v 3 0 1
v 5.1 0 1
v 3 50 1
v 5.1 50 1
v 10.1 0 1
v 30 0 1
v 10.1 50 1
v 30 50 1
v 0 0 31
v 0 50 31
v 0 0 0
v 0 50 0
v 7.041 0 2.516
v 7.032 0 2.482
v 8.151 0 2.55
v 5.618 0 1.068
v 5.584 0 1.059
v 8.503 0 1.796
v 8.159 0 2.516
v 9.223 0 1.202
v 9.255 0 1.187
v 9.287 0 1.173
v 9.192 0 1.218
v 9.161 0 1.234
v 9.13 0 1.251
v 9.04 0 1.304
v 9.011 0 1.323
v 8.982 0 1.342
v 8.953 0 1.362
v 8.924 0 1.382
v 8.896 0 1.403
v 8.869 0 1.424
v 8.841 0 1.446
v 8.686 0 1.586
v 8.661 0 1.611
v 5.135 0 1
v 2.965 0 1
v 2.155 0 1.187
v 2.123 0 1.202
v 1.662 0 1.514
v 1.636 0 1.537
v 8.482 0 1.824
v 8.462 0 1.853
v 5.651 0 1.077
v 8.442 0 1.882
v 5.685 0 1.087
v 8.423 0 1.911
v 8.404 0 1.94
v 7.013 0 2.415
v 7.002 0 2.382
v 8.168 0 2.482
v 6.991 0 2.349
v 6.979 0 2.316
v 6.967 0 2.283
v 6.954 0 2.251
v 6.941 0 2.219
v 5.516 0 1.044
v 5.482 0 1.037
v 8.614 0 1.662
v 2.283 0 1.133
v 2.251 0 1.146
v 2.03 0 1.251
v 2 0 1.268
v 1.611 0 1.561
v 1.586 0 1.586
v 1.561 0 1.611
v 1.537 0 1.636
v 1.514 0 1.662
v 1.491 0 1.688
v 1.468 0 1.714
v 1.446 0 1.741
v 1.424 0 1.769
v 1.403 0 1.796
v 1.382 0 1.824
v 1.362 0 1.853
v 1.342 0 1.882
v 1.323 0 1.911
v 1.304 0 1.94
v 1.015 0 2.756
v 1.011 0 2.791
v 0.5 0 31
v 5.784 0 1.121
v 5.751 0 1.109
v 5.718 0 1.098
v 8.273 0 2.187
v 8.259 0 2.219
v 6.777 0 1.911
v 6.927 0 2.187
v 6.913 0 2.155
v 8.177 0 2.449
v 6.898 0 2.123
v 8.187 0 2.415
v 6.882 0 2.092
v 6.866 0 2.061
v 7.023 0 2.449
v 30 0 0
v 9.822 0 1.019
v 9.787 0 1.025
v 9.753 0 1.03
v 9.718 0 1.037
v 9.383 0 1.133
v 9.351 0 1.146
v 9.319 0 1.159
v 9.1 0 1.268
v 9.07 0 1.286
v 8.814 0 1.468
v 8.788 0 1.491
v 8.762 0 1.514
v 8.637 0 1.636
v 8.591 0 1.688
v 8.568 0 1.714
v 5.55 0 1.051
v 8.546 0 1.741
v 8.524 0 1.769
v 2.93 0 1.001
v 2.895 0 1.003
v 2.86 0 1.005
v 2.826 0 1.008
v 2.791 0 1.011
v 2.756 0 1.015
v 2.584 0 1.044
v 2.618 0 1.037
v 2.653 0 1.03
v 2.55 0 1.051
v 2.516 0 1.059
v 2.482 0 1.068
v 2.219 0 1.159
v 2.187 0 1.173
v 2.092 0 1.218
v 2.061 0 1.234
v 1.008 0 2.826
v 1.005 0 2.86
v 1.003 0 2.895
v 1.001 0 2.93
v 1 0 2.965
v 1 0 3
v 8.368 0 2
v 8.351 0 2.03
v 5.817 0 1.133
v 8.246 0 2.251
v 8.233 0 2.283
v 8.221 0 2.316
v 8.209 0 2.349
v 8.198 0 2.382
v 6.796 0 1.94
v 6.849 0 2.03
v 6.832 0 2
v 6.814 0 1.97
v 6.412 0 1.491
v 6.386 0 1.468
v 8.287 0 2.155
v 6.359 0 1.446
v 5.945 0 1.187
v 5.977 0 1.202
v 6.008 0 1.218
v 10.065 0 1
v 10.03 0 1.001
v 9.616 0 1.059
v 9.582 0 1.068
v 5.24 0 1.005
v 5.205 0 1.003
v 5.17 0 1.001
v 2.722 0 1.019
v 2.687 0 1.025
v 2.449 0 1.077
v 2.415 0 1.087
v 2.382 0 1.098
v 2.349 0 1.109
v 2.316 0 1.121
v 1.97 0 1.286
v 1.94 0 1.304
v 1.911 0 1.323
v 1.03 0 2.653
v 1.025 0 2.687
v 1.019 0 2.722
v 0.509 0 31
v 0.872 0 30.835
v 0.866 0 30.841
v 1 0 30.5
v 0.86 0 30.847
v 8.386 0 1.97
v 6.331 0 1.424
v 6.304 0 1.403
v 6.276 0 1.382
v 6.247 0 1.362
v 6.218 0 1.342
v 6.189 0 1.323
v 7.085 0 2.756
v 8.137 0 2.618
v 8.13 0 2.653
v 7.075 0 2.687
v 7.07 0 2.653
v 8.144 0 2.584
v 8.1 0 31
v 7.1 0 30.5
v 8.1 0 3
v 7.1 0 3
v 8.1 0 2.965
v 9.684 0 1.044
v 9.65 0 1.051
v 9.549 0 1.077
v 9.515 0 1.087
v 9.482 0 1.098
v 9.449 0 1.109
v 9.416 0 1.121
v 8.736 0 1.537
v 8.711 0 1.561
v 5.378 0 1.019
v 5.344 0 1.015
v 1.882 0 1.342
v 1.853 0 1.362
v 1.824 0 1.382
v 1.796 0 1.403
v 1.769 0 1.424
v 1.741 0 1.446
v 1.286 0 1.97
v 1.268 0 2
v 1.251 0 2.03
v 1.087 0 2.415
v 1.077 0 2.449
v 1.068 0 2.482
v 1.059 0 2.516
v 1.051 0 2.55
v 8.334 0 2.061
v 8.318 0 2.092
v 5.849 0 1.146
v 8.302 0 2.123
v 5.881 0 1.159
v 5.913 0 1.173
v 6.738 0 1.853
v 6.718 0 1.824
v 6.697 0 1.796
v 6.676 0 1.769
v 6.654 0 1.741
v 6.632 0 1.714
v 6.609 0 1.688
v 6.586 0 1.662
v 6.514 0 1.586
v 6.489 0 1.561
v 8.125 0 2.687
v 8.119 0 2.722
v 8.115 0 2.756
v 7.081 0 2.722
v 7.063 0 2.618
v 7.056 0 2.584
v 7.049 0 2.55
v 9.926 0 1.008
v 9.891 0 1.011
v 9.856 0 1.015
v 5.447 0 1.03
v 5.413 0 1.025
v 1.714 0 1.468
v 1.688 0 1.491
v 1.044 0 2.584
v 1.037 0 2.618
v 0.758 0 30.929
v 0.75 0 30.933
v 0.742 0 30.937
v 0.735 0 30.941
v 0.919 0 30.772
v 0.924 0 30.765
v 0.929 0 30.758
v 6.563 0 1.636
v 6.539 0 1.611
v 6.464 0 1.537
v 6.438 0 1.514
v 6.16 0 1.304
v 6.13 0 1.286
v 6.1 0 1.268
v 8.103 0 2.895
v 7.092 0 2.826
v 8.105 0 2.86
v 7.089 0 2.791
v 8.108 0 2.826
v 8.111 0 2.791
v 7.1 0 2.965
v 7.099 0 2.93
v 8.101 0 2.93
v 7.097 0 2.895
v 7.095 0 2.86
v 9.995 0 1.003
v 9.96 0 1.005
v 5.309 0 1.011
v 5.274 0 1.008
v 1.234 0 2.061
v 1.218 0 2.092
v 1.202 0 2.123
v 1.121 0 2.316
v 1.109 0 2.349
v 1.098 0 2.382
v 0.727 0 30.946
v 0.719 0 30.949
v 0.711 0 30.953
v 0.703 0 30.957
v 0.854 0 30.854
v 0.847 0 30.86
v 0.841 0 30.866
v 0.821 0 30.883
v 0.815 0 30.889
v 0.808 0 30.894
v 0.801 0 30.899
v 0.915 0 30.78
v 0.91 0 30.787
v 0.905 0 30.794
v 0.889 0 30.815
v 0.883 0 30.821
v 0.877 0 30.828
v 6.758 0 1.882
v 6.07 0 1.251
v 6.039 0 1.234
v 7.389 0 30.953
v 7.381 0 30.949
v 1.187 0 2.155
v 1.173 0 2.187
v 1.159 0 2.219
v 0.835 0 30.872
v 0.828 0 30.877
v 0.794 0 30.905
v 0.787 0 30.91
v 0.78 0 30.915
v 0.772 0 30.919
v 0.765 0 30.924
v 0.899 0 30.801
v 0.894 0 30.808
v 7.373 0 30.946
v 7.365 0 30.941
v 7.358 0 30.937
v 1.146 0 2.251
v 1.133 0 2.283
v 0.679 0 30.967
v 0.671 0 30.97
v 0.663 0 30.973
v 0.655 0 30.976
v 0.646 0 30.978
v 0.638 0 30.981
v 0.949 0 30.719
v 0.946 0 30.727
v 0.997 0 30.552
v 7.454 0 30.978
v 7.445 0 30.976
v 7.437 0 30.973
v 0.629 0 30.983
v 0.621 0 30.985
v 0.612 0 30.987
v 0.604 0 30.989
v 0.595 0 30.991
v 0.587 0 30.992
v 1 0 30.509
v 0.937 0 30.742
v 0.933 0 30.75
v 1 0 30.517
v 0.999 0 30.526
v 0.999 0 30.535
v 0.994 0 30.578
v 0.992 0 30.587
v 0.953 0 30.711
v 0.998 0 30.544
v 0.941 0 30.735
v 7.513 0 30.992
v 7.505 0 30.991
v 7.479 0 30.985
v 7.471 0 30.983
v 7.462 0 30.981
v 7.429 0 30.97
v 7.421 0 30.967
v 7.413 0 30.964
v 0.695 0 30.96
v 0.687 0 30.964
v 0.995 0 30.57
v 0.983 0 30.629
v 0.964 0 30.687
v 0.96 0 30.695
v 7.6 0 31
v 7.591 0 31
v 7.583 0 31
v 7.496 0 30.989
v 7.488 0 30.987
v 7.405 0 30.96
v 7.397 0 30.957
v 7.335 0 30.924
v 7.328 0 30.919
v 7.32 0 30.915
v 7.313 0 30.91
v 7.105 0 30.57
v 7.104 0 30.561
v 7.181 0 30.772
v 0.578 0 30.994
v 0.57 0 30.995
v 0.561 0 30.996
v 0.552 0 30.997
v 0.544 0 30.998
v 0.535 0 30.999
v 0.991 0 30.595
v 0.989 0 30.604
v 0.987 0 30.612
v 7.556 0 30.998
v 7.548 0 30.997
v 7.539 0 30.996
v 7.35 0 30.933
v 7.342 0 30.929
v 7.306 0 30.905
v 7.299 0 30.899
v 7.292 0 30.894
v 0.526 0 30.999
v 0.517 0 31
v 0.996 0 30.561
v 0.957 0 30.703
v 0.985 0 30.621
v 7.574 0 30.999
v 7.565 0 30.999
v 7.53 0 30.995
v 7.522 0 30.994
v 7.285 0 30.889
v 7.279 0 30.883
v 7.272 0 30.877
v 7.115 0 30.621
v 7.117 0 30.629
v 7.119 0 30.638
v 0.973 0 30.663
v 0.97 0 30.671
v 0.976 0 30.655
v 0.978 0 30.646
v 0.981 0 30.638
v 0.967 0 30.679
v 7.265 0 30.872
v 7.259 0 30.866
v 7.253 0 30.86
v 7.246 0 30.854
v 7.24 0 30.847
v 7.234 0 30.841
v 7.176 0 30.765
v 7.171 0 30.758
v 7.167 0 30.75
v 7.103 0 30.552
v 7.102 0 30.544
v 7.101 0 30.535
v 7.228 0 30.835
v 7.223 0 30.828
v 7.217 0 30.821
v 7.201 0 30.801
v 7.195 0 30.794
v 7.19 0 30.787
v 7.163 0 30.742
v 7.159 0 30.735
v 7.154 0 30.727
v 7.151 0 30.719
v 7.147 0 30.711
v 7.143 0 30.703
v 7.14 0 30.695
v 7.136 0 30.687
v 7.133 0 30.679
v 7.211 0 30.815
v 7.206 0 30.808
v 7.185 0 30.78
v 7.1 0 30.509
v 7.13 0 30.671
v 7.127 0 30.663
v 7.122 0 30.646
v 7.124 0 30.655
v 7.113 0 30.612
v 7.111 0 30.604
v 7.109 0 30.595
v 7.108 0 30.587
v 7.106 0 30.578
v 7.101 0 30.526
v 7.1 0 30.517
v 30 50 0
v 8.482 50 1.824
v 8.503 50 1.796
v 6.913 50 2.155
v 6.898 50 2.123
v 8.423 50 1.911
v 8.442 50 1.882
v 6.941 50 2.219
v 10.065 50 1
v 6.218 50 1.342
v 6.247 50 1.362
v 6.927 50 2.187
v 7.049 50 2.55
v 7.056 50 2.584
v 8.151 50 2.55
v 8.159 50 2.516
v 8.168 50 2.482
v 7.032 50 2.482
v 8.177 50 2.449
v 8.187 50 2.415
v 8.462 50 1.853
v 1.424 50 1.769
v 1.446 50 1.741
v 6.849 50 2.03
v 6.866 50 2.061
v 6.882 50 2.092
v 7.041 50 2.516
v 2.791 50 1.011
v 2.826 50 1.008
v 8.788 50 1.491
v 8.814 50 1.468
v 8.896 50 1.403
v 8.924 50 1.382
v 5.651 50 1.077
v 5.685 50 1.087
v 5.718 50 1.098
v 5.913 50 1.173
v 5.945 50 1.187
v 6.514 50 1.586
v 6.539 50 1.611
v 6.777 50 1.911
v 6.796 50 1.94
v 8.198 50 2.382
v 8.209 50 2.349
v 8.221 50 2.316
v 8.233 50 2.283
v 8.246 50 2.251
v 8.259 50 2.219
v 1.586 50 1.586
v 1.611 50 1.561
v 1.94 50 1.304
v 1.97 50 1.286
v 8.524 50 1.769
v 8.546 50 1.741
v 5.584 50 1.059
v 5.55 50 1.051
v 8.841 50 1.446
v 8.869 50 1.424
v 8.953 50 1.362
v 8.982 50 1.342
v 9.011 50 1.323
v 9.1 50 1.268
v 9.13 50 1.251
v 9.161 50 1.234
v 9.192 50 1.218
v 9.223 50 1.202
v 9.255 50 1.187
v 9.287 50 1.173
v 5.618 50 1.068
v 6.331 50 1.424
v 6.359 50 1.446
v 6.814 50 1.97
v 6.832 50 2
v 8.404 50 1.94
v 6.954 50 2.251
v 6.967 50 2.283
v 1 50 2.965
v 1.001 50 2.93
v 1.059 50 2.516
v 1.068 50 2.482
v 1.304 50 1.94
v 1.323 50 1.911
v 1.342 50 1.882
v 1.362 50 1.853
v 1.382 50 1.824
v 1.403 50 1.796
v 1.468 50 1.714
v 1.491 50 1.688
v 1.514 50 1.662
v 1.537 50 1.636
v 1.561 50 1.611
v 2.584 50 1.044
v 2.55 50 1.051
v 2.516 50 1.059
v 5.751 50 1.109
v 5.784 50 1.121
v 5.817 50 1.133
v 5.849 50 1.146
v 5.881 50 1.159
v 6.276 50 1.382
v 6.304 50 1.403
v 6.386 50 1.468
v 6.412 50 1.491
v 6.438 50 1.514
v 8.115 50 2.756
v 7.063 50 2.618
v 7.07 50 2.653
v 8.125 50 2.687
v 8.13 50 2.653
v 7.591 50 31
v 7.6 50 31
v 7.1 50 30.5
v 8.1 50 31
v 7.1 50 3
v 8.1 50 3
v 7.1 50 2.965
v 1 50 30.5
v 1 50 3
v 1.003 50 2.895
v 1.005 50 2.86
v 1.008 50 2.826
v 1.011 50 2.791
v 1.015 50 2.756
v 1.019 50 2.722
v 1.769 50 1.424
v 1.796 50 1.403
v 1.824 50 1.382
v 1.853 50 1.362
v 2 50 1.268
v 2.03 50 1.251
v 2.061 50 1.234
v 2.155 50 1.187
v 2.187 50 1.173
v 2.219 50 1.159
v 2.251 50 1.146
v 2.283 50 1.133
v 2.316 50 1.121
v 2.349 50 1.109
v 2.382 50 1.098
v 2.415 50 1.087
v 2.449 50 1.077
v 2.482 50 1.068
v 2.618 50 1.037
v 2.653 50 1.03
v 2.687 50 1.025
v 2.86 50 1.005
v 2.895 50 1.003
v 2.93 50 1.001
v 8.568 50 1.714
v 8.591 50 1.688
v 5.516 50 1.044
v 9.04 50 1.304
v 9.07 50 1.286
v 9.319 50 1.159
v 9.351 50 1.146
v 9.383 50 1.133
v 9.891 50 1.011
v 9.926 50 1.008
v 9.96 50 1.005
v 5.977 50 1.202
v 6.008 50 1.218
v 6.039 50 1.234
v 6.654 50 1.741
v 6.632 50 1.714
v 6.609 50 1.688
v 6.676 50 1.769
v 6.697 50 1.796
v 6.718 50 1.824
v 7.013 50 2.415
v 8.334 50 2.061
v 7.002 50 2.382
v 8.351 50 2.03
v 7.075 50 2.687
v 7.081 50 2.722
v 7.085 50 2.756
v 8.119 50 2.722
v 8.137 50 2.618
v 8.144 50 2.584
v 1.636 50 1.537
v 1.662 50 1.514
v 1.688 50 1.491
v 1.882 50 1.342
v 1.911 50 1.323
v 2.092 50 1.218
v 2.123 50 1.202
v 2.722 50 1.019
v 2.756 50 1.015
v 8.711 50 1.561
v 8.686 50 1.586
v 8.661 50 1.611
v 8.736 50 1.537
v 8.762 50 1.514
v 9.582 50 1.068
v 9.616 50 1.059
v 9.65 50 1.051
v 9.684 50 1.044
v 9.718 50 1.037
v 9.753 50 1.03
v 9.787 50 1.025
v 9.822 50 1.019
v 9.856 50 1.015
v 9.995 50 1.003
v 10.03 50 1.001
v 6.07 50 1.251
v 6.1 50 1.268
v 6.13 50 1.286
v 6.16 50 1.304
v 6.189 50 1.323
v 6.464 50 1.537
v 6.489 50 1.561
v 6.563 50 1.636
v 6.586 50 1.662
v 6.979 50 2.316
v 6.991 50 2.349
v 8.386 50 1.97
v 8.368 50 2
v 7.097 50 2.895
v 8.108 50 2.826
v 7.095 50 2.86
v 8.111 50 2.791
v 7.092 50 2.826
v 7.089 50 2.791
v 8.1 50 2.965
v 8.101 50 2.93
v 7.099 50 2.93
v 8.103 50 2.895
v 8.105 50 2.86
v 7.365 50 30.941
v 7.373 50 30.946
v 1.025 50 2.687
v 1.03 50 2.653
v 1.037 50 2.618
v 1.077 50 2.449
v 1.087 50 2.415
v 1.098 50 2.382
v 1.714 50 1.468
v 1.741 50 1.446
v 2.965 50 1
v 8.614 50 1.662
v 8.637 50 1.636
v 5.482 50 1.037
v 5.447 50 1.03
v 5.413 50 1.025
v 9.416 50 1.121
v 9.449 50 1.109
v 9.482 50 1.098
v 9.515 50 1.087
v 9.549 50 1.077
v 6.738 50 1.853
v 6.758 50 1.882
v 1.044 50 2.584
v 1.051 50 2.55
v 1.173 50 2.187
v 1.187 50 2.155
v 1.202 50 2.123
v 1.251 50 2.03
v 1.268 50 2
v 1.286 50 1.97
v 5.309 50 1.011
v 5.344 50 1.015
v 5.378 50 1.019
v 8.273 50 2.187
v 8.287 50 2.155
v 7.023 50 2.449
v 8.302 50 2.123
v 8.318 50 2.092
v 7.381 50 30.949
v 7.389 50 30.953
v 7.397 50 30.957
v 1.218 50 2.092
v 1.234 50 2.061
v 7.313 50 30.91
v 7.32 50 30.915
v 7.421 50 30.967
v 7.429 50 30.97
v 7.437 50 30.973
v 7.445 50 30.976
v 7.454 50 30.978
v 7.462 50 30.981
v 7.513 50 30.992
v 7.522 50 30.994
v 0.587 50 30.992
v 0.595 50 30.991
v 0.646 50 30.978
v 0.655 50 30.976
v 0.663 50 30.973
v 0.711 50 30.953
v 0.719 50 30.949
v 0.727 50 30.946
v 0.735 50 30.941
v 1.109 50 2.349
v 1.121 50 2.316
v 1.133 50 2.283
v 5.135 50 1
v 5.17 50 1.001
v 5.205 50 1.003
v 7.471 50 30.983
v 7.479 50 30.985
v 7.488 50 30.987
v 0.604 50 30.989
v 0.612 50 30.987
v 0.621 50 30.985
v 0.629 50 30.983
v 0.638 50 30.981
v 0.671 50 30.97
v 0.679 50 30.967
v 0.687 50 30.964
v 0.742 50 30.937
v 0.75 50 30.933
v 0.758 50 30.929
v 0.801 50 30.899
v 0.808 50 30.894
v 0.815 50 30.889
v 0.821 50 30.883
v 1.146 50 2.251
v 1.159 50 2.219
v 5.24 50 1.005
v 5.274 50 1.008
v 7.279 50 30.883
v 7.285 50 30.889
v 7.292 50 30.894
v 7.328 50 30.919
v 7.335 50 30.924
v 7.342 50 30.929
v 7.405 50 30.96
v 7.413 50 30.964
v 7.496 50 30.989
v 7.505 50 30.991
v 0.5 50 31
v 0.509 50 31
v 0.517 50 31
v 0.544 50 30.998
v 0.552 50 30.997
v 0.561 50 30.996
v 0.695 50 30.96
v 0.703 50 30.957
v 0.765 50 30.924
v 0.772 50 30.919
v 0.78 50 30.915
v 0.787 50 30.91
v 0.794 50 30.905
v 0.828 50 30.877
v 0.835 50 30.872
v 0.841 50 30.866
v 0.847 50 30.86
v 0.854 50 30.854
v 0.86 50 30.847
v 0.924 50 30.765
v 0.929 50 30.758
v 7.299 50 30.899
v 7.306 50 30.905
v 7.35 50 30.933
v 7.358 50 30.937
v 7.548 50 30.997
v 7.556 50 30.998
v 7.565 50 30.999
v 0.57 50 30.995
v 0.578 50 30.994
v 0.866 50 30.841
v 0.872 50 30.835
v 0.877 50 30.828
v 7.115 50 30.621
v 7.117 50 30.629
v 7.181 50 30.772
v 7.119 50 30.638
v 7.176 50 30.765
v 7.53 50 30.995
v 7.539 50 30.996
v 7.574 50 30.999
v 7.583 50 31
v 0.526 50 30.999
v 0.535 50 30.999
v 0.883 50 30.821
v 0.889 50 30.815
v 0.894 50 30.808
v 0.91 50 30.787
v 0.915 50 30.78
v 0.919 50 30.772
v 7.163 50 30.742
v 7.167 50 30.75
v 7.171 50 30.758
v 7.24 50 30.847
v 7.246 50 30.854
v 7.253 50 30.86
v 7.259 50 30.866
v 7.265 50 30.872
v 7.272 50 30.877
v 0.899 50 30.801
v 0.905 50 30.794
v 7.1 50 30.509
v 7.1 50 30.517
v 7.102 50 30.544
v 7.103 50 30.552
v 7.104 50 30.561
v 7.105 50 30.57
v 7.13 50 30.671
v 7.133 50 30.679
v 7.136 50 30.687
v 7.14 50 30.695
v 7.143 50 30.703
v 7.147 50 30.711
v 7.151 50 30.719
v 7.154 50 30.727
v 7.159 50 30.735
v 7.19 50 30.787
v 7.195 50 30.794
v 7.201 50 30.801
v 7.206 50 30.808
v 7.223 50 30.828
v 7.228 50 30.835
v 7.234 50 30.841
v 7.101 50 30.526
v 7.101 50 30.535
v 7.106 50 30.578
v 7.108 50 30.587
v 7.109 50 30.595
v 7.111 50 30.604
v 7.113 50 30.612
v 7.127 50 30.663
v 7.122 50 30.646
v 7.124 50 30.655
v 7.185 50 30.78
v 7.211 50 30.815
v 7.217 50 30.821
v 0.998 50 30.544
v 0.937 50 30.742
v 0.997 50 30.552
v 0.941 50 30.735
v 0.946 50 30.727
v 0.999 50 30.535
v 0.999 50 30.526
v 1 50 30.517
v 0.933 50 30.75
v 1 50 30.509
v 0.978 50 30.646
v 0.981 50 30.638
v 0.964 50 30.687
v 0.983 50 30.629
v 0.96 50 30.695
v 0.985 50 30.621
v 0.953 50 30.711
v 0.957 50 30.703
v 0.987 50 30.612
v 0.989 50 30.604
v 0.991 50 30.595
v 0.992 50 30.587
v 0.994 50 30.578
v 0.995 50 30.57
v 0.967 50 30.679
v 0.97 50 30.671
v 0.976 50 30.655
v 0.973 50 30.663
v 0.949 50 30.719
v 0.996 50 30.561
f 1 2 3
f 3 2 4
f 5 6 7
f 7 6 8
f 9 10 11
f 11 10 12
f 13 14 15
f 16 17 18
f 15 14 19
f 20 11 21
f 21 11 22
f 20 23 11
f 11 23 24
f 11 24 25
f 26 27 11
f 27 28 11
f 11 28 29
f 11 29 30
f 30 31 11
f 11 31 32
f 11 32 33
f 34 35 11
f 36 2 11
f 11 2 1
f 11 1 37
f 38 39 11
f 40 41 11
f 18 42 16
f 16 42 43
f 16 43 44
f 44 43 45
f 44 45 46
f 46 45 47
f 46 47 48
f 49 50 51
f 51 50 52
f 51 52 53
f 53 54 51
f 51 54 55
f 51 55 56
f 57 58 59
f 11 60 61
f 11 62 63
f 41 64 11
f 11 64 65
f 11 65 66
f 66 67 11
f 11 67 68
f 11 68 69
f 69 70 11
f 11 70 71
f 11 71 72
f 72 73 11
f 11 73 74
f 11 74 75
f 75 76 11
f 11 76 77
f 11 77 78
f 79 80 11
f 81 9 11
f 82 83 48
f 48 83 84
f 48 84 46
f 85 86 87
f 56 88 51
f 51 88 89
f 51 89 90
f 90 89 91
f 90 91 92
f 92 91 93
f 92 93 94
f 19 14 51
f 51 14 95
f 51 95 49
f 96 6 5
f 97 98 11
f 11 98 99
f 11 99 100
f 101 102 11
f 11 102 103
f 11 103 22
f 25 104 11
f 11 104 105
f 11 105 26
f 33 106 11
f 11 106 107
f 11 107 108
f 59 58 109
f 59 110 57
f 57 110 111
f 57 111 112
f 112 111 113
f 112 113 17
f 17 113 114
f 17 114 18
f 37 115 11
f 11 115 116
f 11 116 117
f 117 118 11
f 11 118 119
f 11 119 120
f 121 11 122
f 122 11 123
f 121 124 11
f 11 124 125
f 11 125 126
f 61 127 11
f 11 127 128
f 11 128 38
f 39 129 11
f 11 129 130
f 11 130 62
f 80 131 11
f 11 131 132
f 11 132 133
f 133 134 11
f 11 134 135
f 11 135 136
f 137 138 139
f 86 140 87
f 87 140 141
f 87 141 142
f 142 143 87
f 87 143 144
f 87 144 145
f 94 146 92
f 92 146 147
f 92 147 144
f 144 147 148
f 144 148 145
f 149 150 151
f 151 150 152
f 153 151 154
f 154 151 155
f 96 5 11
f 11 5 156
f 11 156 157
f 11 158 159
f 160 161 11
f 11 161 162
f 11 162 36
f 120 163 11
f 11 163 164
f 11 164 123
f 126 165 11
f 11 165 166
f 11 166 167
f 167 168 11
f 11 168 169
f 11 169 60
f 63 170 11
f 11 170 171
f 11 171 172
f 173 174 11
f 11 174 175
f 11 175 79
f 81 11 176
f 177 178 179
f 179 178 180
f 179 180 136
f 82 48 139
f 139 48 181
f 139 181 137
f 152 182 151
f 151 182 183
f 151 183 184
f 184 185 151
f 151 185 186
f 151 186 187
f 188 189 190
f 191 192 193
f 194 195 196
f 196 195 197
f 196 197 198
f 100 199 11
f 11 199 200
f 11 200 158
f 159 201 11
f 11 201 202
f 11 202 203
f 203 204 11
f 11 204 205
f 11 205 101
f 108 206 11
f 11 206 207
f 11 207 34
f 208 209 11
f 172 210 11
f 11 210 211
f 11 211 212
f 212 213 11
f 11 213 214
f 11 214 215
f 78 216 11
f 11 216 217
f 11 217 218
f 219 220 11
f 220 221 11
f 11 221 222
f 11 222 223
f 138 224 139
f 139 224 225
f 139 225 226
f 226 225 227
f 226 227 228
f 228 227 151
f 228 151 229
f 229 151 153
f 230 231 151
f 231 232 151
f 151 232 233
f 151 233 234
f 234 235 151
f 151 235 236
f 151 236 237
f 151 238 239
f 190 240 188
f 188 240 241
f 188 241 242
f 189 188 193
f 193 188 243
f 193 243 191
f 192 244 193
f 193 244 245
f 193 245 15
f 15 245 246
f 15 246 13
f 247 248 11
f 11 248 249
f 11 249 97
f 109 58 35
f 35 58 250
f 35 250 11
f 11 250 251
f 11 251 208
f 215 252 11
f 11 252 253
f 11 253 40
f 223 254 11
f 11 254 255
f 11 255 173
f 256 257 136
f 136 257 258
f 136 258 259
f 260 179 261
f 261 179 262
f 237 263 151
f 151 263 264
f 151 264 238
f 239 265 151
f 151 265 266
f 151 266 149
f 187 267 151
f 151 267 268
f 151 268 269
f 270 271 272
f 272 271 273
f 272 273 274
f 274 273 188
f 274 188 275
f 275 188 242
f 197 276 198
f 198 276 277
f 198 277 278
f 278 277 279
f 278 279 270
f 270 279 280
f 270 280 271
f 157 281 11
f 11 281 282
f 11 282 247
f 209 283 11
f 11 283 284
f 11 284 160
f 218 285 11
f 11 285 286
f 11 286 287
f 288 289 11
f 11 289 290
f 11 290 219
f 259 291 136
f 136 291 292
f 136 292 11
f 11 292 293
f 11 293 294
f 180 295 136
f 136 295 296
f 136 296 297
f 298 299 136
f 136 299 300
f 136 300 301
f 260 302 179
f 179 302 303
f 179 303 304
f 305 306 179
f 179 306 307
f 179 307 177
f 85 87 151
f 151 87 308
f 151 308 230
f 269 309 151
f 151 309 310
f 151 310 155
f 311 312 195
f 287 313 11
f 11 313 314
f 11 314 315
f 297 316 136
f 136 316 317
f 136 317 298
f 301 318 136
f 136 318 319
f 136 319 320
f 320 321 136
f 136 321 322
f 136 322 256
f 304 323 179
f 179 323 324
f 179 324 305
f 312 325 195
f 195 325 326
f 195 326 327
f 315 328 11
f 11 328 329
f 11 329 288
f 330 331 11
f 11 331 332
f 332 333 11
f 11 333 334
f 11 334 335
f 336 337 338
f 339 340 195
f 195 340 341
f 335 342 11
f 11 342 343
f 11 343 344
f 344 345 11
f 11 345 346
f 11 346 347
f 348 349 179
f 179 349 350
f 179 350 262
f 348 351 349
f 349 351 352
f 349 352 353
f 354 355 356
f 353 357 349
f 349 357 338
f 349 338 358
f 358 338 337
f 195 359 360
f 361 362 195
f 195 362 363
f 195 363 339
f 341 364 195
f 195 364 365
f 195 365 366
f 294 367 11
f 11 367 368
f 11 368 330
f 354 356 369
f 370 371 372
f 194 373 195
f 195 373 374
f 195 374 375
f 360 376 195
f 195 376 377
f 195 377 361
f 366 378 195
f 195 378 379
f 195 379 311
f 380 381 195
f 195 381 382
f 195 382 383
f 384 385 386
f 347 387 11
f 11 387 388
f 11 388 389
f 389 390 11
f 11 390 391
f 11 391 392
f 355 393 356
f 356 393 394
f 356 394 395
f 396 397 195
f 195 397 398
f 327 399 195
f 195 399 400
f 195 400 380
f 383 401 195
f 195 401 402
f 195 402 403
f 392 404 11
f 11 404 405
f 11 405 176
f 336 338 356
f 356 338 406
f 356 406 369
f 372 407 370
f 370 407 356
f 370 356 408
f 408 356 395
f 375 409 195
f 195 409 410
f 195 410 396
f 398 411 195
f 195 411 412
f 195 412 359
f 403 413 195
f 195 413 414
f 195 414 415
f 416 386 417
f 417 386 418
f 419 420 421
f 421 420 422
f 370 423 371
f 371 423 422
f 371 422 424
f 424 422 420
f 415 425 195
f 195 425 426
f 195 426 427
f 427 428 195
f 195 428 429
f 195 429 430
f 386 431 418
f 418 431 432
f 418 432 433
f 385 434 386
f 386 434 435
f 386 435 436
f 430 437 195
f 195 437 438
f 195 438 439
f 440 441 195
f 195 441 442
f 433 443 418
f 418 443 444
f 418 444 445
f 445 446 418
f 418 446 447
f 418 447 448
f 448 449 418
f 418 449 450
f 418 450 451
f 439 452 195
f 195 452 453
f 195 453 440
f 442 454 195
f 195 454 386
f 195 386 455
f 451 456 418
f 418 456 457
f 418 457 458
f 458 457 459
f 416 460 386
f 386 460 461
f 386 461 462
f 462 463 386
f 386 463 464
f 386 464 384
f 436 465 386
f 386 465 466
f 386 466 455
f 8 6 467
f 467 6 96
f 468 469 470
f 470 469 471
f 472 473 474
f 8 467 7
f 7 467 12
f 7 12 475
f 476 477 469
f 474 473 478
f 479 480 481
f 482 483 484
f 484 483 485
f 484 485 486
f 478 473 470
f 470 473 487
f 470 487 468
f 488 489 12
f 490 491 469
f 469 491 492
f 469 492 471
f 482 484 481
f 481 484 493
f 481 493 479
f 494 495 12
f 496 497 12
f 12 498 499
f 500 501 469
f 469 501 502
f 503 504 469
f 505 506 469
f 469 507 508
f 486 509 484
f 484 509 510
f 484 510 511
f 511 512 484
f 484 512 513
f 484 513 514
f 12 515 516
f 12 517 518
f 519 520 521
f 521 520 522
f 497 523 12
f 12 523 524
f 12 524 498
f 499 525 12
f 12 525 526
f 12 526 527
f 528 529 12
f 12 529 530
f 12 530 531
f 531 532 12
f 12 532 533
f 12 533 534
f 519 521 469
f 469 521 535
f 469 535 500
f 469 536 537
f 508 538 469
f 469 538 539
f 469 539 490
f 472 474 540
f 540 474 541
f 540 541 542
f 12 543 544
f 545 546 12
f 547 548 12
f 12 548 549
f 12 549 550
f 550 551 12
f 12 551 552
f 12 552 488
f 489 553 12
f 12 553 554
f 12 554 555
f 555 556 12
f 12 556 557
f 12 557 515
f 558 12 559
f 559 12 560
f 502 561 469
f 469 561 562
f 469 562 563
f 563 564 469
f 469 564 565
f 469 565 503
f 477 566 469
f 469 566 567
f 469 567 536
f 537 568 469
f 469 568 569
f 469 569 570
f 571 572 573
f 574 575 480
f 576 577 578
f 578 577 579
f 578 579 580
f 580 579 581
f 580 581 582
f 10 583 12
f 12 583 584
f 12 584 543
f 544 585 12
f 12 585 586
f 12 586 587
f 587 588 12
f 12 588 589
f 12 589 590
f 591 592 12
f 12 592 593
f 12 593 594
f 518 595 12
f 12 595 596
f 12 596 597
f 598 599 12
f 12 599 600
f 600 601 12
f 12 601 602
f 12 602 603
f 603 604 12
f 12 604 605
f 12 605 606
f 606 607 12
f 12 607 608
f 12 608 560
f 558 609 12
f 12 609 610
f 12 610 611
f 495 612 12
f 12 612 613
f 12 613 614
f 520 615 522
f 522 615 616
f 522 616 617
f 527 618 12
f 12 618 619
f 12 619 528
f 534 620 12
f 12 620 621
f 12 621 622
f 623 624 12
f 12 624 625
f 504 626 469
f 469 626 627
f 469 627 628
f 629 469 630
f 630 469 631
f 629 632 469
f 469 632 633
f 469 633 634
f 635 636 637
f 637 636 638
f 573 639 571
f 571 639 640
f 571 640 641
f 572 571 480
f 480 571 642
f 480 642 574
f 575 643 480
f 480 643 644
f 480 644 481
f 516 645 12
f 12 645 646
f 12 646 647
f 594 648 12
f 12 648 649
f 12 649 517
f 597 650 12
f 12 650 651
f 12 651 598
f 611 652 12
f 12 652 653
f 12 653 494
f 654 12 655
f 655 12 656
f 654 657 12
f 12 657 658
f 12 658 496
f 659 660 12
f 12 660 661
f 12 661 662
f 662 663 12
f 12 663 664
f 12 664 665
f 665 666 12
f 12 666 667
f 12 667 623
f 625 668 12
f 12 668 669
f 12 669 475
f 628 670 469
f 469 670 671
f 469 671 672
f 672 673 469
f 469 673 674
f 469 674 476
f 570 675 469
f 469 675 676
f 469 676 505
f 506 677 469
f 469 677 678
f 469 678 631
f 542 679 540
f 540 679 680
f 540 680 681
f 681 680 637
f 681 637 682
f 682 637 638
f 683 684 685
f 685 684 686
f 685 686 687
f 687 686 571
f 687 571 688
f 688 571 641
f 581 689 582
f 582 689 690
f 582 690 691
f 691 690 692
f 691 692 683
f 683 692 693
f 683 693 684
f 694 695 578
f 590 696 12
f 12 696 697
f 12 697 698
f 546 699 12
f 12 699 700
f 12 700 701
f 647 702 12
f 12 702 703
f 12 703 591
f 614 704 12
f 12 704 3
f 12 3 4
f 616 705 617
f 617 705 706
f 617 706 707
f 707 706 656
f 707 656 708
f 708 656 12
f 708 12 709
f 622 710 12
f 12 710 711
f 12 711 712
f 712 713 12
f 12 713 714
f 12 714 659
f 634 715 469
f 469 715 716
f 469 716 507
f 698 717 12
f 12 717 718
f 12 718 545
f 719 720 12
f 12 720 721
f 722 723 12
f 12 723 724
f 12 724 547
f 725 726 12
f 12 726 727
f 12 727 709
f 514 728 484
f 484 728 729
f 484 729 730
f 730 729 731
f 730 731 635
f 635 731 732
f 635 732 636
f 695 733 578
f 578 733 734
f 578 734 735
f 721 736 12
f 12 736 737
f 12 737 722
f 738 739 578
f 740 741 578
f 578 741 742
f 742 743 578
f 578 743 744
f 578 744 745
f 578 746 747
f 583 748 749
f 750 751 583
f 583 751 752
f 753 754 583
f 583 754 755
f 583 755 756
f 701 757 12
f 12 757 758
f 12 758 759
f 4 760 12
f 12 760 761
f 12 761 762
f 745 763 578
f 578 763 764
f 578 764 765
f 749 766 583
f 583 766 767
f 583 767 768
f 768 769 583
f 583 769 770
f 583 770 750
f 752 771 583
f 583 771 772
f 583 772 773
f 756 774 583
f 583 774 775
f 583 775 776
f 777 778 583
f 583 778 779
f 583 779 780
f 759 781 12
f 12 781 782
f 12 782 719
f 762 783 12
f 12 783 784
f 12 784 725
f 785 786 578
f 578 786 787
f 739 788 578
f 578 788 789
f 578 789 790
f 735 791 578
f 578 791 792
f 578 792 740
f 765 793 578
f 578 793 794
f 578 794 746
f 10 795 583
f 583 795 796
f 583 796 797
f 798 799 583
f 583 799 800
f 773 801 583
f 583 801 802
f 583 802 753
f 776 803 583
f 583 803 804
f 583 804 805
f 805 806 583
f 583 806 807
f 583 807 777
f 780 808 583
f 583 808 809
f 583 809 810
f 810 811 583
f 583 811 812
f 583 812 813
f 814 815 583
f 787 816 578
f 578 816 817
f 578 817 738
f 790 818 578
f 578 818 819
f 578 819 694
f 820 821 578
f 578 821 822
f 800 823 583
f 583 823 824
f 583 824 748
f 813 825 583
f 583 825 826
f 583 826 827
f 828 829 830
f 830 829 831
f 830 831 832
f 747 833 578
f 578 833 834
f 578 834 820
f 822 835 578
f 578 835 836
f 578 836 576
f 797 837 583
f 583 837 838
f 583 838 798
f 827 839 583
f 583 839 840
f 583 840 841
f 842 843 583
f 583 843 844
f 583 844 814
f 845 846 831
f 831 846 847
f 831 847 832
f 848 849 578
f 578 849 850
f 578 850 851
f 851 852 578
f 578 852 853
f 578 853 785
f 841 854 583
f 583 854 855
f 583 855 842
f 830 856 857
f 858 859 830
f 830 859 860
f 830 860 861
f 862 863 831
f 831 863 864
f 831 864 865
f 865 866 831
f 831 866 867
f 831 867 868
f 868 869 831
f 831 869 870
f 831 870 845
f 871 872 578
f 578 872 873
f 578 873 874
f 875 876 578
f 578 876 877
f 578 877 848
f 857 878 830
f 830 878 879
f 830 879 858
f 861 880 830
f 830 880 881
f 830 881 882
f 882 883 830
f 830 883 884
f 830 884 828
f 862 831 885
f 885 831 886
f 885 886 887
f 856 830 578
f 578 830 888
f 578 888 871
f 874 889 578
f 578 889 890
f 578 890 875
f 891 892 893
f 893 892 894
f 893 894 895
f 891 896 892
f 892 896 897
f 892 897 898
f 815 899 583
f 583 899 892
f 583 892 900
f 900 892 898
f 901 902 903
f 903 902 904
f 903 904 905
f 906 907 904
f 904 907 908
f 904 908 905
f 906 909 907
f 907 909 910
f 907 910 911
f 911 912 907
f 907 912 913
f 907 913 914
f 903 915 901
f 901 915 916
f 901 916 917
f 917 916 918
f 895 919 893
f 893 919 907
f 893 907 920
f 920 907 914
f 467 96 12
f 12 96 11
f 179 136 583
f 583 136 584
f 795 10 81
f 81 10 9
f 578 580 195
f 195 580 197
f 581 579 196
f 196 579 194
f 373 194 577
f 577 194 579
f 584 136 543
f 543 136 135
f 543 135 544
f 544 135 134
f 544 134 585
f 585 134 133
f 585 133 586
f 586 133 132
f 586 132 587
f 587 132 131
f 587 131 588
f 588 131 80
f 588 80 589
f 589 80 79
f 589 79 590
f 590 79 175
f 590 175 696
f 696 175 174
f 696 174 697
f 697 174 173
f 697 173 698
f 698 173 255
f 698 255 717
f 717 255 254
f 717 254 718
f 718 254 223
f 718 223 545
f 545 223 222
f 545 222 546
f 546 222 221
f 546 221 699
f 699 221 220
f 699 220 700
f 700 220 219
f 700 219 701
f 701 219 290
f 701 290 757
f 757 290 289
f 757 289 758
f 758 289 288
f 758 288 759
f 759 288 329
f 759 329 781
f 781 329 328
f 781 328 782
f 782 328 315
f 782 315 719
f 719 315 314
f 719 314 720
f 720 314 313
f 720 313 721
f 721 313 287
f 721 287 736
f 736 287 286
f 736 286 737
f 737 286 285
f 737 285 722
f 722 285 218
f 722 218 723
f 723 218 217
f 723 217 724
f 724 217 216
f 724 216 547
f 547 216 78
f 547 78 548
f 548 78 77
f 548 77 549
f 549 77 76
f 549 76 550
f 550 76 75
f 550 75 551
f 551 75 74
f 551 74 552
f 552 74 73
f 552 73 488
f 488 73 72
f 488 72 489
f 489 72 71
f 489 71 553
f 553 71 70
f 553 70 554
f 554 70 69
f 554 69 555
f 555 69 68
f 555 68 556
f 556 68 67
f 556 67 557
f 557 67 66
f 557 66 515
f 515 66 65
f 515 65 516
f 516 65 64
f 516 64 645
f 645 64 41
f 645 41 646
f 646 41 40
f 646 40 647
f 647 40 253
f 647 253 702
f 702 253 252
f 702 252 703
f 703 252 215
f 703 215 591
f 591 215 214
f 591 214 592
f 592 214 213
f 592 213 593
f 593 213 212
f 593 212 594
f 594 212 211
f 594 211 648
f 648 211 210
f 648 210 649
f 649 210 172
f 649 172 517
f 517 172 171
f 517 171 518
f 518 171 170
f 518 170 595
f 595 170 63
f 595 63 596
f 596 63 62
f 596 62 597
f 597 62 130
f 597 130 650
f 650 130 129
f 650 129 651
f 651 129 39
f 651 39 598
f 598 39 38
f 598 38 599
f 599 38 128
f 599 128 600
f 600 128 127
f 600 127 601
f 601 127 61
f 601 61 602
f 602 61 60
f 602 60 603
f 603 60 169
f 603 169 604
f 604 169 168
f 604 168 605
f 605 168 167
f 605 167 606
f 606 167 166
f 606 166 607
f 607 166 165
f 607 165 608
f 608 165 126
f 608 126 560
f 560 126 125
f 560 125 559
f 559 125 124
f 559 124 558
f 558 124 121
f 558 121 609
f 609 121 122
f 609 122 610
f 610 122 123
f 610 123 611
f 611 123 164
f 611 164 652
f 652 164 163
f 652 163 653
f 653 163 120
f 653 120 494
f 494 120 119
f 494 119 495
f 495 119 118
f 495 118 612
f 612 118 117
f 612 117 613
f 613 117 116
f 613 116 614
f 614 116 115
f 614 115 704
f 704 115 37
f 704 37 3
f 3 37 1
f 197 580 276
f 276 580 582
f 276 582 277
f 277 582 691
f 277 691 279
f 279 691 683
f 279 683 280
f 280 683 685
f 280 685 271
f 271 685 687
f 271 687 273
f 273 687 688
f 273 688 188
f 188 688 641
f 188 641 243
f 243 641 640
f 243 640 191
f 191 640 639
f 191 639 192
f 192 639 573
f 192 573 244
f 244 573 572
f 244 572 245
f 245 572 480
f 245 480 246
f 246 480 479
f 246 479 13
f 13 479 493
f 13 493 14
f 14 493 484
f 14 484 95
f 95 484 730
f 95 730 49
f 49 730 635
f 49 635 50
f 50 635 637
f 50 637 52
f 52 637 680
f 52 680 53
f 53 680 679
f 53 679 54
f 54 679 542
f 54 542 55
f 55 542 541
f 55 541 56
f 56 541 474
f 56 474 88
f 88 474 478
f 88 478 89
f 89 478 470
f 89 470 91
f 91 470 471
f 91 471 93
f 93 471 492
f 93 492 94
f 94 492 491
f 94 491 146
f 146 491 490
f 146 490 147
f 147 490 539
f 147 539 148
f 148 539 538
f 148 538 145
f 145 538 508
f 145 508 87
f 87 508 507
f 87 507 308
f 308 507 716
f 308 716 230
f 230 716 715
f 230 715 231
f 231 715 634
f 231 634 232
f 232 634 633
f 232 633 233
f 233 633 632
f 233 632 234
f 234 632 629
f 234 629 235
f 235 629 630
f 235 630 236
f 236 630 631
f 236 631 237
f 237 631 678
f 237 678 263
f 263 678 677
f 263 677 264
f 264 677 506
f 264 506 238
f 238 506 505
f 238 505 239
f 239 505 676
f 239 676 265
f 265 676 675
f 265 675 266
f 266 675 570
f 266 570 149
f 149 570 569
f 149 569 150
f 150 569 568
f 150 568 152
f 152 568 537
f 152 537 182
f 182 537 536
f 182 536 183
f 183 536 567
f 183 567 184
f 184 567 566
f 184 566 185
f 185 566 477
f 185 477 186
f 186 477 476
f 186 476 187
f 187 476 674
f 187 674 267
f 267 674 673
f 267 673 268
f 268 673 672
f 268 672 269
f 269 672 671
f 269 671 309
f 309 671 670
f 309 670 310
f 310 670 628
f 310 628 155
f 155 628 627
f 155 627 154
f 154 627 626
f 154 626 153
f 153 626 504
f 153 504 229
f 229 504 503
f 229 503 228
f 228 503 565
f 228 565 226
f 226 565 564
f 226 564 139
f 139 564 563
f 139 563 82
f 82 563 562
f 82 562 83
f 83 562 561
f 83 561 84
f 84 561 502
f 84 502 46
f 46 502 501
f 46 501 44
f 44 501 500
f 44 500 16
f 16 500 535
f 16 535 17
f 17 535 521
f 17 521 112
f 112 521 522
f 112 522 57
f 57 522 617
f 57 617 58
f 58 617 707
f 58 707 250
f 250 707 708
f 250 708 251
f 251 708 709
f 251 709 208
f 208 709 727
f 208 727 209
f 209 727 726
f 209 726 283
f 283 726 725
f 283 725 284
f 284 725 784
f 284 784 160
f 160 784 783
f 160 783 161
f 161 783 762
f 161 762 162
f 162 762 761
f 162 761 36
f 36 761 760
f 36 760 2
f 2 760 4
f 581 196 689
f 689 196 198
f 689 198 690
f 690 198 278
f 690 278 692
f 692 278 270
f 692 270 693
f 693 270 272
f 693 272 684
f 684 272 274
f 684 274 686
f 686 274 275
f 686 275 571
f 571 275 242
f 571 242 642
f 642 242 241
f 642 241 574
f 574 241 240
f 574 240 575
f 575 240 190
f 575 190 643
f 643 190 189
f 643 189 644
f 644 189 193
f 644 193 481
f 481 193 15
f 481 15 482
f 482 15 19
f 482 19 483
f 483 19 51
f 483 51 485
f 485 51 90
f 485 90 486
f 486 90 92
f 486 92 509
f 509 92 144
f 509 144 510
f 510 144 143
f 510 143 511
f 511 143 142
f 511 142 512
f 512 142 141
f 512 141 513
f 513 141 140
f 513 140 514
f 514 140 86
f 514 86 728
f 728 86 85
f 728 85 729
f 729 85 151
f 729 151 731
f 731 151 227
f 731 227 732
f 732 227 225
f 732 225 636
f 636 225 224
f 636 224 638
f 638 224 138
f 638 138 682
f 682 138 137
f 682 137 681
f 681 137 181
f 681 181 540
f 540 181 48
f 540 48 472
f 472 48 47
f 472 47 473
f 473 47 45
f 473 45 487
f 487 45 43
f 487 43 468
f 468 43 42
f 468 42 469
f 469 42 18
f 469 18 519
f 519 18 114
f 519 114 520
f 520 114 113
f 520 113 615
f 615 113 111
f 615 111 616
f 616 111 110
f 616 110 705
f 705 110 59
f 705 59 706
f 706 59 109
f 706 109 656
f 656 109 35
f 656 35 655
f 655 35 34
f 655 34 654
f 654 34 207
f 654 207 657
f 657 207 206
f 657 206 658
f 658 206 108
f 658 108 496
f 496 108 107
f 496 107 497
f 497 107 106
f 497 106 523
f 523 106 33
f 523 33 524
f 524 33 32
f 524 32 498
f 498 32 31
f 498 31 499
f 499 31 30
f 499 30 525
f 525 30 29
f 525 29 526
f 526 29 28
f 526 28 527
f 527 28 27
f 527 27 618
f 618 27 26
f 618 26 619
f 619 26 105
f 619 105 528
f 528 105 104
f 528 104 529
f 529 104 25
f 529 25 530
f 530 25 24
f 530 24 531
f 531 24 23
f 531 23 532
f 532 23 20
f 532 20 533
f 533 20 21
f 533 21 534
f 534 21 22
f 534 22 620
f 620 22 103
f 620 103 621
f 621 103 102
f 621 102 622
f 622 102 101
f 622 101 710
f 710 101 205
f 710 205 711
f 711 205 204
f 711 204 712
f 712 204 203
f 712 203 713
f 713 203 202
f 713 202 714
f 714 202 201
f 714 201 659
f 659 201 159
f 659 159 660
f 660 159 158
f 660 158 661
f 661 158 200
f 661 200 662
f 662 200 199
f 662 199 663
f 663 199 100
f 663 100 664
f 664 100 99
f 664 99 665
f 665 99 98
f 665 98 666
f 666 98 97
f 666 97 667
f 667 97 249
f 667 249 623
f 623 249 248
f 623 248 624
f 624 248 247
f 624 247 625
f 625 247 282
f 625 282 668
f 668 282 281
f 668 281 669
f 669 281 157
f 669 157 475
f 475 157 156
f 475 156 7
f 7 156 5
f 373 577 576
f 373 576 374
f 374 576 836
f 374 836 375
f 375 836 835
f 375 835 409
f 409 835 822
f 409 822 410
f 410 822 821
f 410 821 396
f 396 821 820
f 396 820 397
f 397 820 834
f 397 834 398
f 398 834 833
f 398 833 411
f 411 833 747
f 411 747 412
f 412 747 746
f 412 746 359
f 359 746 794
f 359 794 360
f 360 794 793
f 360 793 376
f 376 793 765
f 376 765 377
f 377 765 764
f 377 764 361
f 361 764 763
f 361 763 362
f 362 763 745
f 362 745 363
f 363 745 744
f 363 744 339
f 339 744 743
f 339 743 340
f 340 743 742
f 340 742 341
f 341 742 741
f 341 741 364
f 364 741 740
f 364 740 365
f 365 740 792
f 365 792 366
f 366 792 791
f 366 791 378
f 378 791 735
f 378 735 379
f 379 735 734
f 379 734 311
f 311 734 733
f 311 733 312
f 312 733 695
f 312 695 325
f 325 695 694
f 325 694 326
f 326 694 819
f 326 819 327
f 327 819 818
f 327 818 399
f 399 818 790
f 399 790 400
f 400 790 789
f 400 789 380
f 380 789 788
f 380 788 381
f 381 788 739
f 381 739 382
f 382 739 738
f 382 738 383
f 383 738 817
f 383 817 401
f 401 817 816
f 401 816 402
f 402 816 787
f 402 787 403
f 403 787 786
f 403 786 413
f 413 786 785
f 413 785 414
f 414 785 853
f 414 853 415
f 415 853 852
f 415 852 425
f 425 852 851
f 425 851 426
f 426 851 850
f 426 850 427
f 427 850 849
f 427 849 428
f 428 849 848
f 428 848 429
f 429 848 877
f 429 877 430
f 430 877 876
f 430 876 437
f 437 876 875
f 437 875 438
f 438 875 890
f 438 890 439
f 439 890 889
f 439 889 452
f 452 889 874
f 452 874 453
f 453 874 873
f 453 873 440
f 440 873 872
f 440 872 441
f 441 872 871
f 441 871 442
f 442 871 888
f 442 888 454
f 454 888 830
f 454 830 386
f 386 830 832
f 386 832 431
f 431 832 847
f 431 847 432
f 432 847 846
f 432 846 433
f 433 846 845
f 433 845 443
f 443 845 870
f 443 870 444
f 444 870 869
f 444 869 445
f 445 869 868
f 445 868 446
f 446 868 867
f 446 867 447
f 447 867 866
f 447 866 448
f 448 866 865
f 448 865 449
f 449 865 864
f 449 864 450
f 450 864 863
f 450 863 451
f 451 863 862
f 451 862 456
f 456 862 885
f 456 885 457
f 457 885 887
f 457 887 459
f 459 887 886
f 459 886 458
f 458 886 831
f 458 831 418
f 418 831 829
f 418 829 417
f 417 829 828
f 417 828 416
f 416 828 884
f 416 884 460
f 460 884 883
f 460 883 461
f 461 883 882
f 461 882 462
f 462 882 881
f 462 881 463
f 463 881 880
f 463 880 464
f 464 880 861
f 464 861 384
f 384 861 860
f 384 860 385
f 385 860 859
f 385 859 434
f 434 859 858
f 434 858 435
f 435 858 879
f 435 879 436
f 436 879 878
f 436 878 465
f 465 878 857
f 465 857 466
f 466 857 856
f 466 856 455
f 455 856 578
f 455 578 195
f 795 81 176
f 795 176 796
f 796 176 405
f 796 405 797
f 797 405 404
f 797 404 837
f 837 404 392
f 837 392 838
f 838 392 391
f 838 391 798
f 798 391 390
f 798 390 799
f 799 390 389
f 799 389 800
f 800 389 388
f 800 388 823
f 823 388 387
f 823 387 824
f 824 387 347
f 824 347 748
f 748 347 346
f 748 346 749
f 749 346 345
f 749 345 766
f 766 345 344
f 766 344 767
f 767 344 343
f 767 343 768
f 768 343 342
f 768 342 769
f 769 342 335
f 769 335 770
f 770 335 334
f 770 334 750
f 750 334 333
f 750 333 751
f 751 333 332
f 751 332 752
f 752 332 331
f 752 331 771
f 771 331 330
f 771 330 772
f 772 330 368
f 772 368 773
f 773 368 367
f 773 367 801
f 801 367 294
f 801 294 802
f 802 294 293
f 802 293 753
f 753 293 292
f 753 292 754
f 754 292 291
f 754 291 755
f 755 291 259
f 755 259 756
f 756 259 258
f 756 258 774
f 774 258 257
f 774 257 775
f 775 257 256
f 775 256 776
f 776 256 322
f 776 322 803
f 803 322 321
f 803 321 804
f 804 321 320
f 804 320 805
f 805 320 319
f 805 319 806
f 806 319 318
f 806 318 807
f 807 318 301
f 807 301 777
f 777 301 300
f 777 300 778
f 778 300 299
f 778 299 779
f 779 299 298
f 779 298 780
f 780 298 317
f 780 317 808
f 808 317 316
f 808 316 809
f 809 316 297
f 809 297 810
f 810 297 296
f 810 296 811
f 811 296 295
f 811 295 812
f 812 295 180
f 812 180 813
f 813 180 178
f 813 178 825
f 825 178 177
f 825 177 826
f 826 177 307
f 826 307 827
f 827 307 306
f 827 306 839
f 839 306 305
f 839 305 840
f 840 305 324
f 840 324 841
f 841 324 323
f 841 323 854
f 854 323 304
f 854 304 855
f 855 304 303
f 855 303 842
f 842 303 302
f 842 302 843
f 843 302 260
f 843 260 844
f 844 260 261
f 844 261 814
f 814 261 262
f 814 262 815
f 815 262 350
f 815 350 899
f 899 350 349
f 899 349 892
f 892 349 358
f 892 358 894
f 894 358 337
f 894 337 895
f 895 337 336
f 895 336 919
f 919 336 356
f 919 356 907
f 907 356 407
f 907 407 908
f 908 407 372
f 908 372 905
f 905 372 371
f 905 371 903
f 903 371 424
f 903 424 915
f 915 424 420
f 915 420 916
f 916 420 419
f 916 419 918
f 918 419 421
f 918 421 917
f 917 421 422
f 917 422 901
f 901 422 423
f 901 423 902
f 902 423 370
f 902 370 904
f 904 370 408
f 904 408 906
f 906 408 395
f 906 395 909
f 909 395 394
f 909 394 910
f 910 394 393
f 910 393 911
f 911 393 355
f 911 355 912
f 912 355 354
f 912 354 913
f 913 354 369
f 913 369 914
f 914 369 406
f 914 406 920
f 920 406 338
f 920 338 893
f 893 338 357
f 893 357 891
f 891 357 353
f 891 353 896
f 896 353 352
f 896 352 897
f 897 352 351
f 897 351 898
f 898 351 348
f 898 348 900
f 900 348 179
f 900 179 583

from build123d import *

# Parameters (mm, degrees)
SKETCH1_W           = 30
SKETCH1_H           = 50
BOSS_EXTRUDE1_DEPTH = 1
SKETCH2_W           = 1
SKETCH2_H           = 50
BOSS_EXTRUDE2_DEPTH = 30
FILLET2_R           = 2
FILLET3_R           = 0.5


with BuildPart() as part:
    # Sketch1 → Boss-Extrude1 (new body)
    with BuildSketch(Plane.XY):
        with Locations((15, 25)):
            Rectangle(SKETCH1_W, SKETCH1_H)
    extrude(amount=BOSS_EXTRUDE1_DEPTH)

    # Sketch2 → Boss-Extrude2 (add)
    with BuildSketch(Plane.XY.offset(1)):
        with Locations((0.5, 25)):
            Rectangle(SKETCH2_W, SKETCH2_H)
        with Locations((7.6, 25)):
            Rectangle(SKETCH2_W, SKETCH2_H)
    extrude(amount=BOSS_EXTRUDE2_DEPTH)

    # Fillet2
    fillet2_edges = [part.edges().sort_by_distance(p)[0] for p in [
        (1, 25, 1),
        (7.1, 25, 1),
        (8.1, 25, 1),
    ]]
    fillet(fillet2_edges, radius=FILLET2_R)

    # Fillet3
    fillet3_edges = [part.edges().sort_by_distance(p)[0] for p in [
        (1, 25, 31),
        (7.1, 25, 31),
    ]]
    fillet(fillet3_edges, radius=FILLET3_R)


solid = part.part
